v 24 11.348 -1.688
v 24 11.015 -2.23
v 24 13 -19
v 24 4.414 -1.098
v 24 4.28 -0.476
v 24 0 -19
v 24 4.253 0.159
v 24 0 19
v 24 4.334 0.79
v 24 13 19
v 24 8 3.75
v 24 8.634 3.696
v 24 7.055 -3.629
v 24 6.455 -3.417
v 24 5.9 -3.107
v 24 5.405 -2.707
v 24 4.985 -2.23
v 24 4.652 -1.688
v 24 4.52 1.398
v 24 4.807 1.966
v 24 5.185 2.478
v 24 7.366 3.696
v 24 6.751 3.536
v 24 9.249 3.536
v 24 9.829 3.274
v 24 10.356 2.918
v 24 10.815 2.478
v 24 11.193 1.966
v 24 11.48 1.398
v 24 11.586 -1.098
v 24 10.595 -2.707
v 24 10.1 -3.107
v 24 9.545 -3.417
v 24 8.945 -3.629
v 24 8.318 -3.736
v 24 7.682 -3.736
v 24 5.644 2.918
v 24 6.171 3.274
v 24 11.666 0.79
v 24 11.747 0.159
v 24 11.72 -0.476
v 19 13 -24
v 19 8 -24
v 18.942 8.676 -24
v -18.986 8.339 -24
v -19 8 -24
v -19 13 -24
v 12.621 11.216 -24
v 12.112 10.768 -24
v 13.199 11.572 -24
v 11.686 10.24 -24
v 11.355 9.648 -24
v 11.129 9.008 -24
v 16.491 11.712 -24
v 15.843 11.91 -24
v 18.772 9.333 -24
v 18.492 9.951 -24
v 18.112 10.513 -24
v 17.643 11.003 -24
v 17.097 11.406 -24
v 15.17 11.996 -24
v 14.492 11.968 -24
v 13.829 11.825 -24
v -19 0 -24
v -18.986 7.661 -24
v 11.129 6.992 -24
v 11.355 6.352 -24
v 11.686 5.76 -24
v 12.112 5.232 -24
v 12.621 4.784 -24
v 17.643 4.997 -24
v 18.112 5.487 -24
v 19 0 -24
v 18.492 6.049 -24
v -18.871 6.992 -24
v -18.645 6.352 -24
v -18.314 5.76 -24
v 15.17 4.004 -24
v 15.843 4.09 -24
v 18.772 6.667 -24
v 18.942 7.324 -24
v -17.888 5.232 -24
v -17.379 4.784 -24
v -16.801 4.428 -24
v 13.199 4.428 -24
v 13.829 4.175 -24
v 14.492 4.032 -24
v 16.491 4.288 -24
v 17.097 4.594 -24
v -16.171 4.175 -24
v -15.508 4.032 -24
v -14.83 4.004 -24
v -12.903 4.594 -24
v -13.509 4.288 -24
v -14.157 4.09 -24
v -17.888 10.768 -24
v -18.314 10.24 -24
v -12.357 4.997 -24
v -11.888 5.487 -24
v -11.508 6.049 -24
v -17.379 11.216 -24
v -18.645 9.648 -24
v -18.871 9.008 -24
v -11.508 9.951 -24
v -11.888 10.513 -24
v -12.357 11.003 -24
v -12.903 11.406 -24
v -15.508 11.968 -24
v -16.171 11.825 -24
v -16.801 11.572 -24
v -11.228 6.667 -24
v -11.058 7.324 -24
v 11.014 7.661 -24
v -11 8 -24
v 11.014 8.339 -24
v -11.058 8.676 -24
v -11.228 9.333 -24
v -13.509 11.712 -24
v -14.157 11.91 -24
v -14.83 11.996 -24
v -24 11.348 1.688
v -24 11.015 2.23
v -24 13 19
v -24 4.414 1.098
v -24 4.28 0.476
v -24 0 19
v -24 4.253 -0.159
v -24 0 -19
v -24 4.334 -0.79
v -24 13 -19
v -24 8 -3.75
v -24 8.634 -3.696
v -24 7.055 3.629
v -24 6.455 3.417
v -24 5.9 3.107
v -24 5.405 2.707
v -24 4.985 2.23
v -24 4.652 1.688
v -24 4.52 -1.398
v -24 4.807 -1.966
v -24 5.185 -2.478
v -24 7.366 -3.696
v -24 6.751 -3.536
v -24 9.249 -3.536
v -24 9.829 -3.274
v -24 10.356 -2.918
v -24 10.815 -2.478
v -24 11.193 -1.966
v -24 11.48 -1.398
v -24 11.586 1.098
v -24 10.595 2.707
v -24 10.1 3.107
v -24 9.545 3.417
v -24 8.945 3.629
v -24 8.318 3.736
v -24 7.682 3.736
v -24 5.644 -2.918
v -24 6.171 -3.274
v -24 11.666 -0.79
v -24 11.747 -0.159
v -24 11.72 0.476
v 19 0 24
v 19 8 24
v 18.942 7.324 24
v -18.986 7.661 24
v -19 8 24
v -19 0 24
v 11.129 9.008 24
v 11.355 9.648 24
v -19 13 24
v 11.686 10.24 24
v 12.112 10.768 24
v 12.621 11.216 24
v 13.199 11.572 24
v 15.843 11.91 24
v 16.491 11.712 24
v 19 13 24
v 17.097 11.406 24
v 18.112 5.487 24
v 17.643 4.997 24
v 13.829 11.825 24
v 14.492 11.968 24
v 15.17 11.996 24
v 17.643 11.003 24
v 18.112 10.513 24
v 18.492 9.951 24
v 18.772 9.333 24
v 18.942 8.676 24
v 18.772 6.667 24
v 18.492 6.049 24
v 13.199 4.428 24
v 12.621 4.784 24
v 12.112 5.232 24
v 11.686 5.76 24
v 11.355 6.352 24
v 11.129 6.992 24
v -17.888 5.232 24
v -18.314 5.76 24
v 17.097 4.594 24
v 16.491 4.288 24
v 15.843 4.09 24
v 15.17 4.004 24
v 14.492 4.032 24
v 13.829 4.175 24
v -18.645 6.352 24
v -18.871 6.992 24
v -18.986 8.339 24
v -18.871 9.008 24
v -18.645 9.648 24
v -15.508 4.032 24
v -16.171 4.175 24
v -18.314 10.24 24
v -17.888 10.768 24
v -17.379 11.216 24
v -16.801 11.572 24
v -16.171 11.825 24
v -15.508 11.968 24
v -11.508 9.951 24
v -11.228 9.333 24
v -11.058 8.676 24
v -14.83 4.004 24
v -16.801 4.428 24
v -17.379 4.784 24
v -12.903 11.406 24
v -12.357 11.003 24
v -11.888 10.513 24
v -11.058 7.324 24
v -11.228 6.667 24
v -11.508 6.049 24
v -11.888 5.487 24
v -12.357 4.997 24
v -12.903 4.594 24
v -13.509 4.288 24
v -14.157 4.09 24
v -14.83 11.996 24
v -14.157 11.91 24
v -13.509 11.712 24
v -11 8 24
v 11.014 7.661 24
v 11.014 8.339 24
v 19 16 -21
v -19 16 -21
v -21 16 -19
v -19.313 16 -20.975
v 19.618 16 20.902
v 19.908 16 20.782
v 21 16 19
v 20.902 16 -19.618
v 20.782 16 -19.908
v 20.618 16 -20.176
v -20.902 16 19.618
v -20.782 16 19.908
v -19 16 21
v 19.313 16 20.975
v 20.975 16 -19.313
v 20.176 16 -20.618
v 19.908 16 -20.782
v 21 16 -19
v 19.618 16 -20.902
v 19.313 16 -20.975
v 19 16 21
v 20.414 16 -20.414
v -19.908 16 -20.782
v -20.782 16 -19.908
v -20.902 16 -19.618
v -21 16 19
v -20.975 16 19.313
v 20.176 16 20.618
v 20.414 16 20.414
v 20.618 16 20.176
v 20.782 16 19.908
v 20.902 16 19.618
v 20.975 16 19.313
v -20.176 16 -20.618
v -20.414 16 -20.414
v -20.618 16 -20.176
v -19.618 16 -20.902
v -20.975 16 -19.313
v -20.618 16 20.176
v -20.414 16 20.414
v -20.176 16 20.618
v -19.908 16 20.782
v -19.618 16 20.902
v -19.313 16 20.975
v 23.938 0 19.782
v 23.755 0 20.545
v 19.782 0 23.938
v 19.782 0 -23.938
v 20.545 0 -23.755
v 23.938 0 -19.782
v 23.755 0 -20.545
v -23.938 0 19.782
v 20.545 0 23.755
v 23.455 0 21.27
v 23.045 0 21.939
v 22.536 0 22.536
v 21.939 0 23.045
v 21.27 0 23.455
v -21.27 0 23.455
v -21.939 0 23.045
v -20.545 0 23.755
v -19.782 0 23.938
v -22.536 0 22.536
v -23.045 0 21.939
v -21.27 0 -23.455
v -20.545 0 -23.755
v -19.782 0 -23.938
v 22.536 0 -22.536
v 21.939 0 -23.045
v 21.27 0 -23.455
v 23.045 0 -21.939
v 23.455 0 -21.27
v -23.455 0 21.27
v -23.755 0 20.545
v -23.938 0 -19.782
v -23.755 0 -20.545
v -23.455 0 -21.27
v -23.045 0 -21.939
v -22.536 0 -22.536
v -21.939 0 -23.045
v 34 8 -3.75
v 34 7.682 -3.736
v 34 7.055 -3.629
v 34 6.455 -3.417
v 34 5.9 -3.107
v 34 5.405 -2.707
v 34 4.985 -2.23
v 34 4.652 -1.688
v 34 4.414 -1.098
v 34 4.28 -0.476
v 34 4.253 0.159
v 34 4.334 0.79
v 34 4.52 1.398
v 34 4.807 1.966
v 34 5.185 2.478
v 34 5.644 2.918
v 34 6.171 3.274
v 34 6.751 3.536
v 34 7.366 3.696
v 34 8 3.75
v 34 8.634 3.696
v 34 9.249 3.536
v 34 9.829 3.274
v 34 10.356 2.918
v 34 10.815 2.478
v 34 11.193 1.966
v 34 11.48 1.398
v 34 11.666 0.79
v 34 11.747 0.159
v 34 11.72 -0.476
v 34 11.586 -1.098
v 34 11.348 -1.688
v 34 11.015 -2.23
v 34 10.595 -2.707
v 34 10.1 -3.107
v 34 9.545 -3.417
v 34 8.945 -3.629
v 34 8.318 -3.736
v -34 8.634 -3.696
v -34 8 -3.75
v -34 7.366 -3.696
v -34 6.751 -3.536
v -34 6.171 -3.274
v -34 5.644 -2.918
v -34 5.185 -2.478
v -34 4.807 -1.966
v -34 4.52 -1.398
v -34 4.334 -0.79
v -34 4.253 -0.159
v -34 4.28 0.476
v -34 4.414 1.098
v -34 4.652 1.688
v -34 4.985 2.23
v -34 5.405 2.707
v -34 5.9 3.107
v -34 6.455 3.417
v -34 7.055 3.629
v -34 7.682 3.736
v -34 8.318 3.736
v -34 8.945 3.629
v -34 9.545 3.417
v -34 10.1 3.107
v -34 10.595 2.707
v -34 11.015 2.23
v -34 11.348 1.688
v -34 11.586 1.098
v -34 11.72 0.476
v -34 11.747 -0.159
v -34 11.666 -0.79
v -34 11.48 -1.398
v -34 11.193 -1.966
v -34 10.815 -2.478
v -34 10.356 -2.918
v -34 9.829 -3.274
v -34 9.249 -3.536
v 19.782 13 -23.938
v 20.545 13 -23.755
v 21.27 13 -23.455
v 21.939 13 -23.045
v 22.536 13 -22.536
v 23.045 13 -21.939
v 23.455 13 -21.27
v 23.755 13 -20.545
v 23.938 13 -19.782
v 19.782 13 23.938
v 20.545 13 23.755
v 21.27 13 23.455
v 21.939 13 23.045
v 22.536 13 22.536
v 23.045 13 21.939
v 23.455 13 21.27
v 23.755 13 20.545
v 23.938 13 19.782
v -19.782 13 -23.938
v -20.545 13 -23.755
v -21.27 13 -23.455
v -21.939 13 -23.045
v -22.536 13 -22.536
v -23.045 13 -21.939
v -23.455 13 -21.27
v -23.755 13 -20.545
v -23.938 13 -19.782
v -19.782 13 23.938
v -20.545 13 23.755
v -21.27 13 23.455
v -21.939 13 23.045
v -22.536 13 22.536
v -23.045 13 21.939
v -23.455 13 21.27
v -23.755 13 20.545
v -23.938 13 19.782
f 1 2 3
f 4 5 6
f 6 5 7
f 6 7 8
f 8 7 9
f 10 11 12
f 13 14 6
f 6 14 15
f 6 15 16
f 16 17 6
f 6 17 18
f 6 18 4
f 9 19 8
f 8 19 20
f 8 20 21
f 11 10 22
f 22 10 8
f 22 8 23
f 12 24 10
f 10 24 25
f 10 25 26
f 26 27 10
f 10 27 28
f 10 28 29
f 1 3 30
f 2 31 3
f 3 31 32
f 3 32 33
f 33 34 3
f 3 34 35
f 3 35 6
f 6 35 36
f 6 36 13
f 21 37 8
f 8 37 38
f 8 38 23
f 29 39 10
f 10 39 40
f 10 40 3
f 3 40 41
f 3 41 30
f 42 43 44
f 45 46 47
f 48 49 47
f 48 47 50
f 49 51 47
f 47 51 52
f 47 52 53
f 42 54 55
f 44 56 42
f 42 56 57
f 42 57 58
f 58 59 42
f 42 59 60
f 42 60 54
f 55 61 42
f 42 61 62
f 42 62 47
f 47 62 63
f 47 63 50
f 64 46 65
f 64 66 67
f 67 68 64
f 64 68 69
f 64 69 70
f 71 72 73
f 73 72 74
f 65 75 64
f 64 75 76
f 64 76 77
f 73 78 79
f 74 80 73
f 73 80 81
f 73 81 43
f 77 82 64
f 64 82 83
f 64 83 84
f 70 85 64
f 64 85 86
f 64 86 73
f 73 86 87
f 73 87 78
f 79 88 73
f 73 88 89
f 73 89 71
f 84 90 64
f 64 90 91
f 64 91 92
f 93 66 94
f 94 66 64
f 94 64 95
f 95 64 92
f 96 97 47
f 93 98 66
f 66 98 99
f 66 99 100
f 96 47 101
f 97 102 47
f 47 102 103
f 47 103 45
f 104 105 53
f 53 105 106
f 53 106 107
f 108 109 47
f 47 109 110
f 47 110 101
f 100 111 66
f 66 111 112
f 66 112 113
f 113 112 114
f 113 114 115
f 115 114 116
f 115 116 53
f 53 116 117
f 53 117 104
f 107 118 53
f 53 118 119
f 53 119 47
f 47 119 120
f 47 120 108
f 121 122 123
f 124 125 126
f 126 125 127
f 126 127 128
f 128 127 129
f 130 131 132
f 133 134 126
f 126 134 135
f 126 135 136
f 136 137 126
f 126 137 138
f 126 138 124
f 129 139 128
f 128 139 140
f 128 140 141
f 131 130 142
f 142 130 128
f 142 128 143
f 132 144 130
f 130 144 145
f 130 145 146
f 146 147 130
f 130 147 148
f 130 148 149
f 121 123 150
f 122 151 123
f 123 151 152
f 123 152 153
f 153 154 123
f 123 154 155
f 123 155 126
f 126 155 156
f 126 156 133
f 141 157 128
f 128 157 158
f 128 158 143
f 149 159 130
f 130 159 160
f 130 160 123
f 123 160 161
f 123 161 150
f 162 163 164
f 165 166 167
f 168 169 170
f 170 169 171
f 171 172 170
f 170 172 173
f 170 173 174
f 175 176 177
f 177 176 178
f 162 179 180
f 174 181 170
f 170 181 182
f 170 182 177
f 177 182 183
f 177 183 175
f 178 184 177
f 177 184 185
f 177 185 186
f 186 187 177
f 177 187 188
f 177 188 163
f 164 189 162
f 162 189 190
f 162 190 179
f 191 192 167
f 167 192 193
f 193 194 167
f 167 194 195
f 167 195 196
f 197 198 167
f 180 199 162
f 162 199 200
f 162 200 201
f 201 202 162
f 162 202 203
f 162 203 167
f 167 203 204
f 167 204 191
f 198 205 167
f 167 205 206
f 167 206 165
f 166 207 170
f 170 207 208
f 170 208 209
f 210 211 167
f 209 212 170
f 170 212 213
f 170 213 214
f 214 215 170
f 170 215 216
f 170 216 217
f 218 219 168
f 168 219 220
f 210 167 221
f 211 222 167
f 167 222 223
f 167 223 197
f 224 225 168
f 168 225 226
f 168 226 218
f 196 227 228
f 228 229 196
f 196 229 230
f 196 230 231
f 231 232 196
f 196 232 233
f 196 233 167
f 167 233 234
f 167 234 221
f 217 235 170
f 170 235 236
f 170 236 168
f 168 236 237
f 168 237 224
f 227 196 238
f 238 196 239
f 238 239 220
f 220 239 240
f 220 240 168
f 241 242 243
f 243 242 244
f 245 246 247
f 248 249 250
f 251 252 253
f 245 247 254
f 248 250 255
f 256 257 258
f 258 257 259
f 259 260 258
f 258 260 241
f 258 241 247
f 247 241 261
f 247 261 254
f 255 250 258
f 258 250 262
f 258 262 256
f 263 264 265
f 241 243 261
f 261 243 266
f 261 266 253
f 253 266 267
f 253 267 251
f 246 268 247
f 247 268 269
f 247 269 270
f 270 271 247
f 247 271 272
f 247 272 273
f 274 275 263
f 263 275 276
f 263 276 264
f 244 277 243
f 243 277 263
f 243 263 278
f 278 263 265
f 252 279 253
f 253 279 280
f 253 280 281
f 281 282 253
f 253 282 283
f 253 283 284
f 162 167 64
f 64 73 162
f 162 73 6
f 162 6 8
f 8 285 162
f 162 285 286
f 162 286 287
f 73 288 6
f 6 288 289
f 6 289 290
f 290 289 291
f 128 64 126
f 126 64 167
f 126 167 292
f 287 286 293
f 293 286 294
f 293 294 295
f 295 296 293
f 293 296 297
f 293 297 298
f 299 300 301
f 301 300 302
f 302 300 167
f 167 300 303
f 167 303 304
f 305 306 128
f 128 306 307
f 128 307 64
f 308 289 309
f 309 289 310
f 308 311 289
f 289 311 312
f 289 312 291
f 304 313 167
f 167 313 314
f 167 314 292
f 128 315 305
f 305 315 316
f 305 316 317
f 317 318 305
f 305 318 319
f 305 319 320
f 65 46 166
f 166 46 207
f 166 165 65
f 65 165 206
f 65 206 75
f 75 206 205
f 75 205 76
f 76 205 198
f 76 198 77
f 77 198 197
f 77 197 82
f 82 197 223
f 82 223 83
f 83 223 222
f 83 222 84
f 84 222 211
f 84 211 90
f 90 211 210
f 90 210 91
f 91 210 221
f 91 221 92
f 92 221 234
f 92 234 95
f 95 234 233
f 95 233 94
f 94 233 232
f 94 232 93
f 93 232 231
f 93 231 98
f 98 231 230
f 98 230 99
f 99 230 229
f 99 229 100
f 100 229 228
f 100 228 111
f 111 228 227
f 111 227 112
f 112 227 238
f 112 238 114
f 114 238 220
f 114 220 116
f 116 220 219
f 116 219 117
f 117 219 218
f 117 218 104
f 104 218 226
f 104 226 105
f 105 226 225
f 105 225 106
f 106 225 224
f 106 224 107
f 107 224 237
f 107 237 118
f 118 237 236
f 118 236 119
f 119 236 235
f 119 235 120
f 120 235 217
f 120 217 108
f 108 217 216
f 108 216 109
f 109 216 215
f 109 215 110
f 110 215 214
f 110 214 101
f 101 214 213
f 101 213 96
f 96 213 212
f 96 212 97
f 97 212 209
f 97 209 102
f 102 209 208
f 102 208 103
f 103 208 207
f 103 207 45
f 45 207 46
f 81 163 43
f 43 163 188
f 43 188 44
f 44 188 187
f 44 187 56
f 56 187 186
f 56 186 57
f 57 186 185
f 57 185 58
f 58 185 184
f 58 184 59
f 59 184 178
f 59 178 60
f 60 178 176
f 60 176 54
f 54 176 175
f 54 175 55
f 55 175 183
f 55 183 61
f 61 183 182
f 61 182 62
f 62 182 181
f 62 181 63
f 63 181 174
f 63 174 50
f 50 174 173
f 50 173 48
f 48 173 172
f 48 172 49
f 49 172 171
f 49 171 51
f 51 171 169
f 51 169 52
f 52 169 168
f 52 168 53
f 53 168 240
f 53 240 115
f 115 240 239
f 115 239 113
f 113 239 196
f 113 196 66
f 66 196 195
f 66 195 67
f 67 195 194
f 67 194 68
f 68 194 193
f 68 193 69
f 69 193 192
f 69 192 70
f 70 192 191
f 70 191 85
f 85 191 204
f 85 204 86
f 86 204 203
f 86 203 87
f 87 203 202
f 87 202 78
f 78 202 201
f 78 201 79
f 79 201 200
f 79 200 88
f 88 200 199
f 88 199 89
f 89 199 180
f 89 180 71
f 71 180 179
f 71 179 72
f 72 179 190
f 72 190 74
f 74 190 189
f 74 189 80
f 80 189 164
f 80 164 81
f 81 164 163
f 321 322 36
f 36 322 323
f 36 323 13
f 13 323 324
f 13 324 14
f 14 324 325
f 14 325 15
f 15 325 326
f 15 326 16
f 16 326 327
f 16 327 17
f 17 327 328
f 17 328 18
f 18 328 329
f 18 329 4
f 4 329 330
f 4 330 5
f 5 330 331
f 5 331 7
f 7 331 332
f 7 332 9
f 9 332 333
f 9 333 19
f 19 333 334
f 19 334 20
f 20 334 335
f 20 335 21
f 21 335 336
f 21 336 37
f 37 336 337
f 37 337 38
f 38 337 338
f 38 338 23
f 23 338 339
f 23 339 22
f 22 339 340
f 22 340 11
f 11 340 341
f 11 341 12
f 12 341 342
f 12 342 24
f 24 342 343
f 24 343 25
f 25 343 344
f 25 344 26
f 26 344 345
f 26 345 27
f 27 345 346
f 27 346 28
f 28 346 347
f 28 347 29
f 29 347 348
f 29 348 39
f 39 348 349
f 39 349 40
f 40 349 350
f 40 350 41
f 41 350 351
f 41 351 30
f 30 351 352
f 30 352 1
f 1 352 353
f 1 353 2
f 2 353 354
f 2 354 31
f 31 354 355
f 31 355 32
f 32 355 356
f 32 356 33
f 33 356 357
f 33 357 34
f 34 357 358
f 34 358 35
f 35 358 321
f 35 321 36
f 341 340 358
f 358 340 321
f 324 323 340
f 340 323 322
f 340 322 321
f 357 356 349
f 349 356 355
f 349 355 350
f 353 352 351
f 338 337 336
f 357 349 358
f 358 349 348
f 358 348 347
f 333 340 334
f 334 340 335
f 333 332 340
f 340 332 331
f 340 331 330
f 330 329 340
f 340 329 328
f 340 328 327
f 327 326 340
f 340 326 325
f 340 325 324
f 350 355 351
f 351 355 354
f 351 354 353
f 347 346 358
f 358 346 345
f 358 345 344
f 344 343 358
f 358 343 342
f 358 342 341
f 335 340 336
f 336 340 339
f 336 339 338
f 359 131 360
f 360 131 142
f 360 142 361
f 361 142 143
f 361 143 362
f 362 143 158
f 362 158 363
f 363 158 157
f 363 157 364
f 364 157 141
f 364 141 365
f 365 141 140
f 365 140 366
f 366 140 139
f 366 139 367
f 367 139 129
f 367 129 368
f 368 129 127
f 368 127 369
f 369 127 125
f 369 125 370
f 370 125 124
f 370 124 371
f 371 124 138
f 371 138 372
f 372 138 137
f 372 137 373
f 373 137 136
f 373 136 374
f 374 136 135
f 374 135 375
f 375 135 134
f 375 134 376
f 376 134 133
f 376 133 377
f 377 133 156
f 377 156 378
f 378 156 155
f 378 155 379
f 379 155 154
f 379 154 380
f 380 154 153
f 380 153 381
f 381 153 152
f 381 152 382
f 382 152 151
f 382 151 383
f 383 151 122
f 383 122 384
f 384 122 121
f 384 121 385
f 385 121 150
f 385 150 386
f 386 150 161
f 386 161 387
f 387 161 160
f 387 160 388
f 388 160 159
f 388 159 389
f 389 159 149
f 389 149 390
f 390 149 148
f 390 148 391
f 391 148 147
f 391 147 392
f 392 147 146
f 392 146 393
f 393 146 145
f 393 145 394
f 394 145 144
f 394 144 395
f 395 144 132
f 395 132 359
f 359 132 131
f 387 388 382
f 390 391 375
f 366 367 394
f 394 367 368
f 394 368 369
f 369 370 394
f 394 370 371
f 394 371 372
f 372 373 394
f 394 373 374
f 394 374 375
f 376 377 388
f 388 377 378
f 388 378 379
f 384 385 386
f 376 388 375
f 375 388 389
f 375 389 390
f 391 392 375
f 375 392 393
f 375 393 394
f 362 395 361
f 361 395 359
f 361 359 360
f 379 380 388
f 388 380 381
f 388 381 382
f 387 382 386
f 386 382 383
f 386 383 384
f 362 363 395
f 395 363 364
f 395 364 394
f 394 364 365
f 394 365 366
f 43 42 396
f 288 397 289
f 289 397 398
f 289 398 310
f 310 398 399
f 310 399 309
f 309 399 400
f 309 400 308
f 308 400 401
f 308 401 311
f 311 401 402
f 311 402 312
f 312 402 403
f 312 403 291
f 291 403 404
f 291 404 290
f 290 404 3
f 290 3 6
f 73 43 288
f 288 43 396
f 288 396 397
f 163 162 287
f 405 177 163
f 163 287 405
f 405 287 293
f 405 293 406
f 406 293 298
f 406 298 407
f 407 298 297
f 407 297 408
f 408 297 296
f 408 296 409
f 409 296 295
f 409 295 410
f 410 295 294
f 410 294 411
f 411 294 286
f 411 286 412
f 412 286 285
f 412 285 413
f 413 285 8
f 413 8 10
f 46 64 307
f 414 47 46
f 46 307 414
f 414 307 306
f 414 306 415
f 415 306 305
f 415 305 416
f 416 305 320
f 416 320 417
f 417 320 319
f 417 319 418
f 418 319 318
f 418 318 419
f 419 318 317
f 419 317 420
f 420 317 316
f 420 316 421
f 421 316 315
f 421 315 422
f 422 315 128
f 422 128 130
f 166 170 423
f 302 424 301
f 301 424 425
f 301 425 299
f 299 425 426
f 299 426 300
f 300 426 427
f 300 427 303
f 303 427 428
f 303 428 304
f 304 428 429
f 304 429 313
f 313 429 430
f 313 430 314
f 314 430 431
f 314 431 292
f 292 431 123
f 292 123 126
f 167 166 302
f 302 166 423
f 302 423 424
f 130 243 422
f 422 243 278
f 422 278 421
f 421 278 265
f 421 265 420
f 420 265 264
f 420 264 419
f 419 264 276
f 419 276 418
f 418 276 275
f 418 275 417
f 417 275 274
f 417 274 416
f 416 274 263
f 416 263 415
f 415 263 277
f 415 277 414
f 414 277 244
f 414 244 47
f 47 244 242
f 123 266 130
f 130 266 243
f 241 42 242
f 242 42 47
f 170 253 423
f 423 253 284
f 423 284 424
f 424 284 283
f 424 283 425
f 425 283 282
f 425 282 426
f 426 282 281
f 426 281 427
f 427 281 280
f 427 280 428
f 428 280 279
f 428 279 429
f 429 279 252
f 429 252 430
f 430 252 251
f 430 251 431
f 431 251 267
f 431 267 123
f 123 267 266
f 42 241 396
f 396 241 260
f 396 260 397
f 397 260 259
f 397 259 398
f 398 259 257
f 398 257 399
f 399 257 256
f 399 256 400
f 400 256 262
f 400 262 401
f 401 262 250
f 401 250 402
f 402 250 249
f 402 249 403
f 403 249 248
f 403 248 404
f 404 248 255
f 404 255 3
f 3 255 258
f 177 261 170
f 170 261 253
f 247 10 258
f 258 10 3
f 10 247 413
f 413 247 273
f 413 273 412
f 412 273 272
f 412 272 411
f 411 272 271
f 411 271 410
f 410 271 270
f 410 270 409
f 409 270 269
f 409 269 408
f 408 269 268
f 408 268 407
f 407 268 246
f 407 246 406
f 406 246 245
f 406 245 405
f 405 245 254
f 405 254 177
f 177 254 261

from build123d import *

# Parameters (mm, degrees)
SKETCH1_W           = 48
SKETCH1_H           = 48
BOSS_EXTRUDE1_DEPTH = 16
SKETCH2_R           = 4
CUT_EXTRUDE1_DEPTH  = 100
SKETCH3_R           = 3.75
BOSS_EXTRUDE2_DEPTH = 10
FILLET1_R           = 5
CHAMFER1_SIZE       = 3


with BuildPart() as part:
    # Sketch1 → Boss-Extrude1 (new body)
    with BuildSketch(Plane(origin=(0, 0, 0), x_dir=(1, 0, 0), z_dir=(0, 1, 0))):
        Rectangle(SKETCH1_W, SKETCH1_H)
    extrude(amount=BOSS_EXTRUDE1_DEPTH)

    # Sketch2 → Cut-Extrude1 (cut)
    with BuildSketch(Plane.XY.offset(24)):
        with Locations((-15, 8)):
            Circle(SKETCH2_R)
        with Locations((15, 8)):
            Circle(SKETCH2_R)
    extrude(amount=-CUT_EXTRUDE1_DEPTH, mode=Mode.SUBTRACT)

    # Sketch3 → Boss-Extrude2 (add)
    with BuildSketch(Plane(origin=(24, 0, 0), x_dir=(0, 0, -1), z_dir=(1, 0, 0))):
        with Locations(Location((0, 8, 0), (0, 0, 180))):
            Circle(SKETCH3_R)
    boss_extrude2 = extrude(amount=BOSS_EXTRUDE2_DEPTH)

    # Mirror1: Boss-Extrude2 across plane
    add(boss_extrude2.mirror(Plane(origin=(0, 0, 0), x_dir=(0, 0, 1), z_dir=(1, 0, 0))))

    # Fillet1
    fillet1_edges = [part.edges().sort_by_distance(p)[0] for p in [
        (24, 8, 24),
        (-24, 8, 24),
        (-24, 8, -24),
        (24, 8, -24),
    ]]
    fillet(fillet1_edges, radius=FILLET1_R - 0.0001)  # a hair under: the kernel refuses the full size

    # Chamfer1
    chamfer1_edges = [part.edges().sort_by_distance(p)[0] for p in [
        (0, 16, -24),
        (24, 16, 0),
        (-24, 16, 0),
        (0, 16, 24),
        (-22.535563195, 16, 22.535563195),
        (-22.535563195, 16, -22.535563195),
        (22.535563195, 16, 22.535563195),
        (22.535563195, 16, -22.535563195),
    ]]
    chamfer(chamfer1_edges, length=CHAMFER1_SIZE)


solid = part.part
